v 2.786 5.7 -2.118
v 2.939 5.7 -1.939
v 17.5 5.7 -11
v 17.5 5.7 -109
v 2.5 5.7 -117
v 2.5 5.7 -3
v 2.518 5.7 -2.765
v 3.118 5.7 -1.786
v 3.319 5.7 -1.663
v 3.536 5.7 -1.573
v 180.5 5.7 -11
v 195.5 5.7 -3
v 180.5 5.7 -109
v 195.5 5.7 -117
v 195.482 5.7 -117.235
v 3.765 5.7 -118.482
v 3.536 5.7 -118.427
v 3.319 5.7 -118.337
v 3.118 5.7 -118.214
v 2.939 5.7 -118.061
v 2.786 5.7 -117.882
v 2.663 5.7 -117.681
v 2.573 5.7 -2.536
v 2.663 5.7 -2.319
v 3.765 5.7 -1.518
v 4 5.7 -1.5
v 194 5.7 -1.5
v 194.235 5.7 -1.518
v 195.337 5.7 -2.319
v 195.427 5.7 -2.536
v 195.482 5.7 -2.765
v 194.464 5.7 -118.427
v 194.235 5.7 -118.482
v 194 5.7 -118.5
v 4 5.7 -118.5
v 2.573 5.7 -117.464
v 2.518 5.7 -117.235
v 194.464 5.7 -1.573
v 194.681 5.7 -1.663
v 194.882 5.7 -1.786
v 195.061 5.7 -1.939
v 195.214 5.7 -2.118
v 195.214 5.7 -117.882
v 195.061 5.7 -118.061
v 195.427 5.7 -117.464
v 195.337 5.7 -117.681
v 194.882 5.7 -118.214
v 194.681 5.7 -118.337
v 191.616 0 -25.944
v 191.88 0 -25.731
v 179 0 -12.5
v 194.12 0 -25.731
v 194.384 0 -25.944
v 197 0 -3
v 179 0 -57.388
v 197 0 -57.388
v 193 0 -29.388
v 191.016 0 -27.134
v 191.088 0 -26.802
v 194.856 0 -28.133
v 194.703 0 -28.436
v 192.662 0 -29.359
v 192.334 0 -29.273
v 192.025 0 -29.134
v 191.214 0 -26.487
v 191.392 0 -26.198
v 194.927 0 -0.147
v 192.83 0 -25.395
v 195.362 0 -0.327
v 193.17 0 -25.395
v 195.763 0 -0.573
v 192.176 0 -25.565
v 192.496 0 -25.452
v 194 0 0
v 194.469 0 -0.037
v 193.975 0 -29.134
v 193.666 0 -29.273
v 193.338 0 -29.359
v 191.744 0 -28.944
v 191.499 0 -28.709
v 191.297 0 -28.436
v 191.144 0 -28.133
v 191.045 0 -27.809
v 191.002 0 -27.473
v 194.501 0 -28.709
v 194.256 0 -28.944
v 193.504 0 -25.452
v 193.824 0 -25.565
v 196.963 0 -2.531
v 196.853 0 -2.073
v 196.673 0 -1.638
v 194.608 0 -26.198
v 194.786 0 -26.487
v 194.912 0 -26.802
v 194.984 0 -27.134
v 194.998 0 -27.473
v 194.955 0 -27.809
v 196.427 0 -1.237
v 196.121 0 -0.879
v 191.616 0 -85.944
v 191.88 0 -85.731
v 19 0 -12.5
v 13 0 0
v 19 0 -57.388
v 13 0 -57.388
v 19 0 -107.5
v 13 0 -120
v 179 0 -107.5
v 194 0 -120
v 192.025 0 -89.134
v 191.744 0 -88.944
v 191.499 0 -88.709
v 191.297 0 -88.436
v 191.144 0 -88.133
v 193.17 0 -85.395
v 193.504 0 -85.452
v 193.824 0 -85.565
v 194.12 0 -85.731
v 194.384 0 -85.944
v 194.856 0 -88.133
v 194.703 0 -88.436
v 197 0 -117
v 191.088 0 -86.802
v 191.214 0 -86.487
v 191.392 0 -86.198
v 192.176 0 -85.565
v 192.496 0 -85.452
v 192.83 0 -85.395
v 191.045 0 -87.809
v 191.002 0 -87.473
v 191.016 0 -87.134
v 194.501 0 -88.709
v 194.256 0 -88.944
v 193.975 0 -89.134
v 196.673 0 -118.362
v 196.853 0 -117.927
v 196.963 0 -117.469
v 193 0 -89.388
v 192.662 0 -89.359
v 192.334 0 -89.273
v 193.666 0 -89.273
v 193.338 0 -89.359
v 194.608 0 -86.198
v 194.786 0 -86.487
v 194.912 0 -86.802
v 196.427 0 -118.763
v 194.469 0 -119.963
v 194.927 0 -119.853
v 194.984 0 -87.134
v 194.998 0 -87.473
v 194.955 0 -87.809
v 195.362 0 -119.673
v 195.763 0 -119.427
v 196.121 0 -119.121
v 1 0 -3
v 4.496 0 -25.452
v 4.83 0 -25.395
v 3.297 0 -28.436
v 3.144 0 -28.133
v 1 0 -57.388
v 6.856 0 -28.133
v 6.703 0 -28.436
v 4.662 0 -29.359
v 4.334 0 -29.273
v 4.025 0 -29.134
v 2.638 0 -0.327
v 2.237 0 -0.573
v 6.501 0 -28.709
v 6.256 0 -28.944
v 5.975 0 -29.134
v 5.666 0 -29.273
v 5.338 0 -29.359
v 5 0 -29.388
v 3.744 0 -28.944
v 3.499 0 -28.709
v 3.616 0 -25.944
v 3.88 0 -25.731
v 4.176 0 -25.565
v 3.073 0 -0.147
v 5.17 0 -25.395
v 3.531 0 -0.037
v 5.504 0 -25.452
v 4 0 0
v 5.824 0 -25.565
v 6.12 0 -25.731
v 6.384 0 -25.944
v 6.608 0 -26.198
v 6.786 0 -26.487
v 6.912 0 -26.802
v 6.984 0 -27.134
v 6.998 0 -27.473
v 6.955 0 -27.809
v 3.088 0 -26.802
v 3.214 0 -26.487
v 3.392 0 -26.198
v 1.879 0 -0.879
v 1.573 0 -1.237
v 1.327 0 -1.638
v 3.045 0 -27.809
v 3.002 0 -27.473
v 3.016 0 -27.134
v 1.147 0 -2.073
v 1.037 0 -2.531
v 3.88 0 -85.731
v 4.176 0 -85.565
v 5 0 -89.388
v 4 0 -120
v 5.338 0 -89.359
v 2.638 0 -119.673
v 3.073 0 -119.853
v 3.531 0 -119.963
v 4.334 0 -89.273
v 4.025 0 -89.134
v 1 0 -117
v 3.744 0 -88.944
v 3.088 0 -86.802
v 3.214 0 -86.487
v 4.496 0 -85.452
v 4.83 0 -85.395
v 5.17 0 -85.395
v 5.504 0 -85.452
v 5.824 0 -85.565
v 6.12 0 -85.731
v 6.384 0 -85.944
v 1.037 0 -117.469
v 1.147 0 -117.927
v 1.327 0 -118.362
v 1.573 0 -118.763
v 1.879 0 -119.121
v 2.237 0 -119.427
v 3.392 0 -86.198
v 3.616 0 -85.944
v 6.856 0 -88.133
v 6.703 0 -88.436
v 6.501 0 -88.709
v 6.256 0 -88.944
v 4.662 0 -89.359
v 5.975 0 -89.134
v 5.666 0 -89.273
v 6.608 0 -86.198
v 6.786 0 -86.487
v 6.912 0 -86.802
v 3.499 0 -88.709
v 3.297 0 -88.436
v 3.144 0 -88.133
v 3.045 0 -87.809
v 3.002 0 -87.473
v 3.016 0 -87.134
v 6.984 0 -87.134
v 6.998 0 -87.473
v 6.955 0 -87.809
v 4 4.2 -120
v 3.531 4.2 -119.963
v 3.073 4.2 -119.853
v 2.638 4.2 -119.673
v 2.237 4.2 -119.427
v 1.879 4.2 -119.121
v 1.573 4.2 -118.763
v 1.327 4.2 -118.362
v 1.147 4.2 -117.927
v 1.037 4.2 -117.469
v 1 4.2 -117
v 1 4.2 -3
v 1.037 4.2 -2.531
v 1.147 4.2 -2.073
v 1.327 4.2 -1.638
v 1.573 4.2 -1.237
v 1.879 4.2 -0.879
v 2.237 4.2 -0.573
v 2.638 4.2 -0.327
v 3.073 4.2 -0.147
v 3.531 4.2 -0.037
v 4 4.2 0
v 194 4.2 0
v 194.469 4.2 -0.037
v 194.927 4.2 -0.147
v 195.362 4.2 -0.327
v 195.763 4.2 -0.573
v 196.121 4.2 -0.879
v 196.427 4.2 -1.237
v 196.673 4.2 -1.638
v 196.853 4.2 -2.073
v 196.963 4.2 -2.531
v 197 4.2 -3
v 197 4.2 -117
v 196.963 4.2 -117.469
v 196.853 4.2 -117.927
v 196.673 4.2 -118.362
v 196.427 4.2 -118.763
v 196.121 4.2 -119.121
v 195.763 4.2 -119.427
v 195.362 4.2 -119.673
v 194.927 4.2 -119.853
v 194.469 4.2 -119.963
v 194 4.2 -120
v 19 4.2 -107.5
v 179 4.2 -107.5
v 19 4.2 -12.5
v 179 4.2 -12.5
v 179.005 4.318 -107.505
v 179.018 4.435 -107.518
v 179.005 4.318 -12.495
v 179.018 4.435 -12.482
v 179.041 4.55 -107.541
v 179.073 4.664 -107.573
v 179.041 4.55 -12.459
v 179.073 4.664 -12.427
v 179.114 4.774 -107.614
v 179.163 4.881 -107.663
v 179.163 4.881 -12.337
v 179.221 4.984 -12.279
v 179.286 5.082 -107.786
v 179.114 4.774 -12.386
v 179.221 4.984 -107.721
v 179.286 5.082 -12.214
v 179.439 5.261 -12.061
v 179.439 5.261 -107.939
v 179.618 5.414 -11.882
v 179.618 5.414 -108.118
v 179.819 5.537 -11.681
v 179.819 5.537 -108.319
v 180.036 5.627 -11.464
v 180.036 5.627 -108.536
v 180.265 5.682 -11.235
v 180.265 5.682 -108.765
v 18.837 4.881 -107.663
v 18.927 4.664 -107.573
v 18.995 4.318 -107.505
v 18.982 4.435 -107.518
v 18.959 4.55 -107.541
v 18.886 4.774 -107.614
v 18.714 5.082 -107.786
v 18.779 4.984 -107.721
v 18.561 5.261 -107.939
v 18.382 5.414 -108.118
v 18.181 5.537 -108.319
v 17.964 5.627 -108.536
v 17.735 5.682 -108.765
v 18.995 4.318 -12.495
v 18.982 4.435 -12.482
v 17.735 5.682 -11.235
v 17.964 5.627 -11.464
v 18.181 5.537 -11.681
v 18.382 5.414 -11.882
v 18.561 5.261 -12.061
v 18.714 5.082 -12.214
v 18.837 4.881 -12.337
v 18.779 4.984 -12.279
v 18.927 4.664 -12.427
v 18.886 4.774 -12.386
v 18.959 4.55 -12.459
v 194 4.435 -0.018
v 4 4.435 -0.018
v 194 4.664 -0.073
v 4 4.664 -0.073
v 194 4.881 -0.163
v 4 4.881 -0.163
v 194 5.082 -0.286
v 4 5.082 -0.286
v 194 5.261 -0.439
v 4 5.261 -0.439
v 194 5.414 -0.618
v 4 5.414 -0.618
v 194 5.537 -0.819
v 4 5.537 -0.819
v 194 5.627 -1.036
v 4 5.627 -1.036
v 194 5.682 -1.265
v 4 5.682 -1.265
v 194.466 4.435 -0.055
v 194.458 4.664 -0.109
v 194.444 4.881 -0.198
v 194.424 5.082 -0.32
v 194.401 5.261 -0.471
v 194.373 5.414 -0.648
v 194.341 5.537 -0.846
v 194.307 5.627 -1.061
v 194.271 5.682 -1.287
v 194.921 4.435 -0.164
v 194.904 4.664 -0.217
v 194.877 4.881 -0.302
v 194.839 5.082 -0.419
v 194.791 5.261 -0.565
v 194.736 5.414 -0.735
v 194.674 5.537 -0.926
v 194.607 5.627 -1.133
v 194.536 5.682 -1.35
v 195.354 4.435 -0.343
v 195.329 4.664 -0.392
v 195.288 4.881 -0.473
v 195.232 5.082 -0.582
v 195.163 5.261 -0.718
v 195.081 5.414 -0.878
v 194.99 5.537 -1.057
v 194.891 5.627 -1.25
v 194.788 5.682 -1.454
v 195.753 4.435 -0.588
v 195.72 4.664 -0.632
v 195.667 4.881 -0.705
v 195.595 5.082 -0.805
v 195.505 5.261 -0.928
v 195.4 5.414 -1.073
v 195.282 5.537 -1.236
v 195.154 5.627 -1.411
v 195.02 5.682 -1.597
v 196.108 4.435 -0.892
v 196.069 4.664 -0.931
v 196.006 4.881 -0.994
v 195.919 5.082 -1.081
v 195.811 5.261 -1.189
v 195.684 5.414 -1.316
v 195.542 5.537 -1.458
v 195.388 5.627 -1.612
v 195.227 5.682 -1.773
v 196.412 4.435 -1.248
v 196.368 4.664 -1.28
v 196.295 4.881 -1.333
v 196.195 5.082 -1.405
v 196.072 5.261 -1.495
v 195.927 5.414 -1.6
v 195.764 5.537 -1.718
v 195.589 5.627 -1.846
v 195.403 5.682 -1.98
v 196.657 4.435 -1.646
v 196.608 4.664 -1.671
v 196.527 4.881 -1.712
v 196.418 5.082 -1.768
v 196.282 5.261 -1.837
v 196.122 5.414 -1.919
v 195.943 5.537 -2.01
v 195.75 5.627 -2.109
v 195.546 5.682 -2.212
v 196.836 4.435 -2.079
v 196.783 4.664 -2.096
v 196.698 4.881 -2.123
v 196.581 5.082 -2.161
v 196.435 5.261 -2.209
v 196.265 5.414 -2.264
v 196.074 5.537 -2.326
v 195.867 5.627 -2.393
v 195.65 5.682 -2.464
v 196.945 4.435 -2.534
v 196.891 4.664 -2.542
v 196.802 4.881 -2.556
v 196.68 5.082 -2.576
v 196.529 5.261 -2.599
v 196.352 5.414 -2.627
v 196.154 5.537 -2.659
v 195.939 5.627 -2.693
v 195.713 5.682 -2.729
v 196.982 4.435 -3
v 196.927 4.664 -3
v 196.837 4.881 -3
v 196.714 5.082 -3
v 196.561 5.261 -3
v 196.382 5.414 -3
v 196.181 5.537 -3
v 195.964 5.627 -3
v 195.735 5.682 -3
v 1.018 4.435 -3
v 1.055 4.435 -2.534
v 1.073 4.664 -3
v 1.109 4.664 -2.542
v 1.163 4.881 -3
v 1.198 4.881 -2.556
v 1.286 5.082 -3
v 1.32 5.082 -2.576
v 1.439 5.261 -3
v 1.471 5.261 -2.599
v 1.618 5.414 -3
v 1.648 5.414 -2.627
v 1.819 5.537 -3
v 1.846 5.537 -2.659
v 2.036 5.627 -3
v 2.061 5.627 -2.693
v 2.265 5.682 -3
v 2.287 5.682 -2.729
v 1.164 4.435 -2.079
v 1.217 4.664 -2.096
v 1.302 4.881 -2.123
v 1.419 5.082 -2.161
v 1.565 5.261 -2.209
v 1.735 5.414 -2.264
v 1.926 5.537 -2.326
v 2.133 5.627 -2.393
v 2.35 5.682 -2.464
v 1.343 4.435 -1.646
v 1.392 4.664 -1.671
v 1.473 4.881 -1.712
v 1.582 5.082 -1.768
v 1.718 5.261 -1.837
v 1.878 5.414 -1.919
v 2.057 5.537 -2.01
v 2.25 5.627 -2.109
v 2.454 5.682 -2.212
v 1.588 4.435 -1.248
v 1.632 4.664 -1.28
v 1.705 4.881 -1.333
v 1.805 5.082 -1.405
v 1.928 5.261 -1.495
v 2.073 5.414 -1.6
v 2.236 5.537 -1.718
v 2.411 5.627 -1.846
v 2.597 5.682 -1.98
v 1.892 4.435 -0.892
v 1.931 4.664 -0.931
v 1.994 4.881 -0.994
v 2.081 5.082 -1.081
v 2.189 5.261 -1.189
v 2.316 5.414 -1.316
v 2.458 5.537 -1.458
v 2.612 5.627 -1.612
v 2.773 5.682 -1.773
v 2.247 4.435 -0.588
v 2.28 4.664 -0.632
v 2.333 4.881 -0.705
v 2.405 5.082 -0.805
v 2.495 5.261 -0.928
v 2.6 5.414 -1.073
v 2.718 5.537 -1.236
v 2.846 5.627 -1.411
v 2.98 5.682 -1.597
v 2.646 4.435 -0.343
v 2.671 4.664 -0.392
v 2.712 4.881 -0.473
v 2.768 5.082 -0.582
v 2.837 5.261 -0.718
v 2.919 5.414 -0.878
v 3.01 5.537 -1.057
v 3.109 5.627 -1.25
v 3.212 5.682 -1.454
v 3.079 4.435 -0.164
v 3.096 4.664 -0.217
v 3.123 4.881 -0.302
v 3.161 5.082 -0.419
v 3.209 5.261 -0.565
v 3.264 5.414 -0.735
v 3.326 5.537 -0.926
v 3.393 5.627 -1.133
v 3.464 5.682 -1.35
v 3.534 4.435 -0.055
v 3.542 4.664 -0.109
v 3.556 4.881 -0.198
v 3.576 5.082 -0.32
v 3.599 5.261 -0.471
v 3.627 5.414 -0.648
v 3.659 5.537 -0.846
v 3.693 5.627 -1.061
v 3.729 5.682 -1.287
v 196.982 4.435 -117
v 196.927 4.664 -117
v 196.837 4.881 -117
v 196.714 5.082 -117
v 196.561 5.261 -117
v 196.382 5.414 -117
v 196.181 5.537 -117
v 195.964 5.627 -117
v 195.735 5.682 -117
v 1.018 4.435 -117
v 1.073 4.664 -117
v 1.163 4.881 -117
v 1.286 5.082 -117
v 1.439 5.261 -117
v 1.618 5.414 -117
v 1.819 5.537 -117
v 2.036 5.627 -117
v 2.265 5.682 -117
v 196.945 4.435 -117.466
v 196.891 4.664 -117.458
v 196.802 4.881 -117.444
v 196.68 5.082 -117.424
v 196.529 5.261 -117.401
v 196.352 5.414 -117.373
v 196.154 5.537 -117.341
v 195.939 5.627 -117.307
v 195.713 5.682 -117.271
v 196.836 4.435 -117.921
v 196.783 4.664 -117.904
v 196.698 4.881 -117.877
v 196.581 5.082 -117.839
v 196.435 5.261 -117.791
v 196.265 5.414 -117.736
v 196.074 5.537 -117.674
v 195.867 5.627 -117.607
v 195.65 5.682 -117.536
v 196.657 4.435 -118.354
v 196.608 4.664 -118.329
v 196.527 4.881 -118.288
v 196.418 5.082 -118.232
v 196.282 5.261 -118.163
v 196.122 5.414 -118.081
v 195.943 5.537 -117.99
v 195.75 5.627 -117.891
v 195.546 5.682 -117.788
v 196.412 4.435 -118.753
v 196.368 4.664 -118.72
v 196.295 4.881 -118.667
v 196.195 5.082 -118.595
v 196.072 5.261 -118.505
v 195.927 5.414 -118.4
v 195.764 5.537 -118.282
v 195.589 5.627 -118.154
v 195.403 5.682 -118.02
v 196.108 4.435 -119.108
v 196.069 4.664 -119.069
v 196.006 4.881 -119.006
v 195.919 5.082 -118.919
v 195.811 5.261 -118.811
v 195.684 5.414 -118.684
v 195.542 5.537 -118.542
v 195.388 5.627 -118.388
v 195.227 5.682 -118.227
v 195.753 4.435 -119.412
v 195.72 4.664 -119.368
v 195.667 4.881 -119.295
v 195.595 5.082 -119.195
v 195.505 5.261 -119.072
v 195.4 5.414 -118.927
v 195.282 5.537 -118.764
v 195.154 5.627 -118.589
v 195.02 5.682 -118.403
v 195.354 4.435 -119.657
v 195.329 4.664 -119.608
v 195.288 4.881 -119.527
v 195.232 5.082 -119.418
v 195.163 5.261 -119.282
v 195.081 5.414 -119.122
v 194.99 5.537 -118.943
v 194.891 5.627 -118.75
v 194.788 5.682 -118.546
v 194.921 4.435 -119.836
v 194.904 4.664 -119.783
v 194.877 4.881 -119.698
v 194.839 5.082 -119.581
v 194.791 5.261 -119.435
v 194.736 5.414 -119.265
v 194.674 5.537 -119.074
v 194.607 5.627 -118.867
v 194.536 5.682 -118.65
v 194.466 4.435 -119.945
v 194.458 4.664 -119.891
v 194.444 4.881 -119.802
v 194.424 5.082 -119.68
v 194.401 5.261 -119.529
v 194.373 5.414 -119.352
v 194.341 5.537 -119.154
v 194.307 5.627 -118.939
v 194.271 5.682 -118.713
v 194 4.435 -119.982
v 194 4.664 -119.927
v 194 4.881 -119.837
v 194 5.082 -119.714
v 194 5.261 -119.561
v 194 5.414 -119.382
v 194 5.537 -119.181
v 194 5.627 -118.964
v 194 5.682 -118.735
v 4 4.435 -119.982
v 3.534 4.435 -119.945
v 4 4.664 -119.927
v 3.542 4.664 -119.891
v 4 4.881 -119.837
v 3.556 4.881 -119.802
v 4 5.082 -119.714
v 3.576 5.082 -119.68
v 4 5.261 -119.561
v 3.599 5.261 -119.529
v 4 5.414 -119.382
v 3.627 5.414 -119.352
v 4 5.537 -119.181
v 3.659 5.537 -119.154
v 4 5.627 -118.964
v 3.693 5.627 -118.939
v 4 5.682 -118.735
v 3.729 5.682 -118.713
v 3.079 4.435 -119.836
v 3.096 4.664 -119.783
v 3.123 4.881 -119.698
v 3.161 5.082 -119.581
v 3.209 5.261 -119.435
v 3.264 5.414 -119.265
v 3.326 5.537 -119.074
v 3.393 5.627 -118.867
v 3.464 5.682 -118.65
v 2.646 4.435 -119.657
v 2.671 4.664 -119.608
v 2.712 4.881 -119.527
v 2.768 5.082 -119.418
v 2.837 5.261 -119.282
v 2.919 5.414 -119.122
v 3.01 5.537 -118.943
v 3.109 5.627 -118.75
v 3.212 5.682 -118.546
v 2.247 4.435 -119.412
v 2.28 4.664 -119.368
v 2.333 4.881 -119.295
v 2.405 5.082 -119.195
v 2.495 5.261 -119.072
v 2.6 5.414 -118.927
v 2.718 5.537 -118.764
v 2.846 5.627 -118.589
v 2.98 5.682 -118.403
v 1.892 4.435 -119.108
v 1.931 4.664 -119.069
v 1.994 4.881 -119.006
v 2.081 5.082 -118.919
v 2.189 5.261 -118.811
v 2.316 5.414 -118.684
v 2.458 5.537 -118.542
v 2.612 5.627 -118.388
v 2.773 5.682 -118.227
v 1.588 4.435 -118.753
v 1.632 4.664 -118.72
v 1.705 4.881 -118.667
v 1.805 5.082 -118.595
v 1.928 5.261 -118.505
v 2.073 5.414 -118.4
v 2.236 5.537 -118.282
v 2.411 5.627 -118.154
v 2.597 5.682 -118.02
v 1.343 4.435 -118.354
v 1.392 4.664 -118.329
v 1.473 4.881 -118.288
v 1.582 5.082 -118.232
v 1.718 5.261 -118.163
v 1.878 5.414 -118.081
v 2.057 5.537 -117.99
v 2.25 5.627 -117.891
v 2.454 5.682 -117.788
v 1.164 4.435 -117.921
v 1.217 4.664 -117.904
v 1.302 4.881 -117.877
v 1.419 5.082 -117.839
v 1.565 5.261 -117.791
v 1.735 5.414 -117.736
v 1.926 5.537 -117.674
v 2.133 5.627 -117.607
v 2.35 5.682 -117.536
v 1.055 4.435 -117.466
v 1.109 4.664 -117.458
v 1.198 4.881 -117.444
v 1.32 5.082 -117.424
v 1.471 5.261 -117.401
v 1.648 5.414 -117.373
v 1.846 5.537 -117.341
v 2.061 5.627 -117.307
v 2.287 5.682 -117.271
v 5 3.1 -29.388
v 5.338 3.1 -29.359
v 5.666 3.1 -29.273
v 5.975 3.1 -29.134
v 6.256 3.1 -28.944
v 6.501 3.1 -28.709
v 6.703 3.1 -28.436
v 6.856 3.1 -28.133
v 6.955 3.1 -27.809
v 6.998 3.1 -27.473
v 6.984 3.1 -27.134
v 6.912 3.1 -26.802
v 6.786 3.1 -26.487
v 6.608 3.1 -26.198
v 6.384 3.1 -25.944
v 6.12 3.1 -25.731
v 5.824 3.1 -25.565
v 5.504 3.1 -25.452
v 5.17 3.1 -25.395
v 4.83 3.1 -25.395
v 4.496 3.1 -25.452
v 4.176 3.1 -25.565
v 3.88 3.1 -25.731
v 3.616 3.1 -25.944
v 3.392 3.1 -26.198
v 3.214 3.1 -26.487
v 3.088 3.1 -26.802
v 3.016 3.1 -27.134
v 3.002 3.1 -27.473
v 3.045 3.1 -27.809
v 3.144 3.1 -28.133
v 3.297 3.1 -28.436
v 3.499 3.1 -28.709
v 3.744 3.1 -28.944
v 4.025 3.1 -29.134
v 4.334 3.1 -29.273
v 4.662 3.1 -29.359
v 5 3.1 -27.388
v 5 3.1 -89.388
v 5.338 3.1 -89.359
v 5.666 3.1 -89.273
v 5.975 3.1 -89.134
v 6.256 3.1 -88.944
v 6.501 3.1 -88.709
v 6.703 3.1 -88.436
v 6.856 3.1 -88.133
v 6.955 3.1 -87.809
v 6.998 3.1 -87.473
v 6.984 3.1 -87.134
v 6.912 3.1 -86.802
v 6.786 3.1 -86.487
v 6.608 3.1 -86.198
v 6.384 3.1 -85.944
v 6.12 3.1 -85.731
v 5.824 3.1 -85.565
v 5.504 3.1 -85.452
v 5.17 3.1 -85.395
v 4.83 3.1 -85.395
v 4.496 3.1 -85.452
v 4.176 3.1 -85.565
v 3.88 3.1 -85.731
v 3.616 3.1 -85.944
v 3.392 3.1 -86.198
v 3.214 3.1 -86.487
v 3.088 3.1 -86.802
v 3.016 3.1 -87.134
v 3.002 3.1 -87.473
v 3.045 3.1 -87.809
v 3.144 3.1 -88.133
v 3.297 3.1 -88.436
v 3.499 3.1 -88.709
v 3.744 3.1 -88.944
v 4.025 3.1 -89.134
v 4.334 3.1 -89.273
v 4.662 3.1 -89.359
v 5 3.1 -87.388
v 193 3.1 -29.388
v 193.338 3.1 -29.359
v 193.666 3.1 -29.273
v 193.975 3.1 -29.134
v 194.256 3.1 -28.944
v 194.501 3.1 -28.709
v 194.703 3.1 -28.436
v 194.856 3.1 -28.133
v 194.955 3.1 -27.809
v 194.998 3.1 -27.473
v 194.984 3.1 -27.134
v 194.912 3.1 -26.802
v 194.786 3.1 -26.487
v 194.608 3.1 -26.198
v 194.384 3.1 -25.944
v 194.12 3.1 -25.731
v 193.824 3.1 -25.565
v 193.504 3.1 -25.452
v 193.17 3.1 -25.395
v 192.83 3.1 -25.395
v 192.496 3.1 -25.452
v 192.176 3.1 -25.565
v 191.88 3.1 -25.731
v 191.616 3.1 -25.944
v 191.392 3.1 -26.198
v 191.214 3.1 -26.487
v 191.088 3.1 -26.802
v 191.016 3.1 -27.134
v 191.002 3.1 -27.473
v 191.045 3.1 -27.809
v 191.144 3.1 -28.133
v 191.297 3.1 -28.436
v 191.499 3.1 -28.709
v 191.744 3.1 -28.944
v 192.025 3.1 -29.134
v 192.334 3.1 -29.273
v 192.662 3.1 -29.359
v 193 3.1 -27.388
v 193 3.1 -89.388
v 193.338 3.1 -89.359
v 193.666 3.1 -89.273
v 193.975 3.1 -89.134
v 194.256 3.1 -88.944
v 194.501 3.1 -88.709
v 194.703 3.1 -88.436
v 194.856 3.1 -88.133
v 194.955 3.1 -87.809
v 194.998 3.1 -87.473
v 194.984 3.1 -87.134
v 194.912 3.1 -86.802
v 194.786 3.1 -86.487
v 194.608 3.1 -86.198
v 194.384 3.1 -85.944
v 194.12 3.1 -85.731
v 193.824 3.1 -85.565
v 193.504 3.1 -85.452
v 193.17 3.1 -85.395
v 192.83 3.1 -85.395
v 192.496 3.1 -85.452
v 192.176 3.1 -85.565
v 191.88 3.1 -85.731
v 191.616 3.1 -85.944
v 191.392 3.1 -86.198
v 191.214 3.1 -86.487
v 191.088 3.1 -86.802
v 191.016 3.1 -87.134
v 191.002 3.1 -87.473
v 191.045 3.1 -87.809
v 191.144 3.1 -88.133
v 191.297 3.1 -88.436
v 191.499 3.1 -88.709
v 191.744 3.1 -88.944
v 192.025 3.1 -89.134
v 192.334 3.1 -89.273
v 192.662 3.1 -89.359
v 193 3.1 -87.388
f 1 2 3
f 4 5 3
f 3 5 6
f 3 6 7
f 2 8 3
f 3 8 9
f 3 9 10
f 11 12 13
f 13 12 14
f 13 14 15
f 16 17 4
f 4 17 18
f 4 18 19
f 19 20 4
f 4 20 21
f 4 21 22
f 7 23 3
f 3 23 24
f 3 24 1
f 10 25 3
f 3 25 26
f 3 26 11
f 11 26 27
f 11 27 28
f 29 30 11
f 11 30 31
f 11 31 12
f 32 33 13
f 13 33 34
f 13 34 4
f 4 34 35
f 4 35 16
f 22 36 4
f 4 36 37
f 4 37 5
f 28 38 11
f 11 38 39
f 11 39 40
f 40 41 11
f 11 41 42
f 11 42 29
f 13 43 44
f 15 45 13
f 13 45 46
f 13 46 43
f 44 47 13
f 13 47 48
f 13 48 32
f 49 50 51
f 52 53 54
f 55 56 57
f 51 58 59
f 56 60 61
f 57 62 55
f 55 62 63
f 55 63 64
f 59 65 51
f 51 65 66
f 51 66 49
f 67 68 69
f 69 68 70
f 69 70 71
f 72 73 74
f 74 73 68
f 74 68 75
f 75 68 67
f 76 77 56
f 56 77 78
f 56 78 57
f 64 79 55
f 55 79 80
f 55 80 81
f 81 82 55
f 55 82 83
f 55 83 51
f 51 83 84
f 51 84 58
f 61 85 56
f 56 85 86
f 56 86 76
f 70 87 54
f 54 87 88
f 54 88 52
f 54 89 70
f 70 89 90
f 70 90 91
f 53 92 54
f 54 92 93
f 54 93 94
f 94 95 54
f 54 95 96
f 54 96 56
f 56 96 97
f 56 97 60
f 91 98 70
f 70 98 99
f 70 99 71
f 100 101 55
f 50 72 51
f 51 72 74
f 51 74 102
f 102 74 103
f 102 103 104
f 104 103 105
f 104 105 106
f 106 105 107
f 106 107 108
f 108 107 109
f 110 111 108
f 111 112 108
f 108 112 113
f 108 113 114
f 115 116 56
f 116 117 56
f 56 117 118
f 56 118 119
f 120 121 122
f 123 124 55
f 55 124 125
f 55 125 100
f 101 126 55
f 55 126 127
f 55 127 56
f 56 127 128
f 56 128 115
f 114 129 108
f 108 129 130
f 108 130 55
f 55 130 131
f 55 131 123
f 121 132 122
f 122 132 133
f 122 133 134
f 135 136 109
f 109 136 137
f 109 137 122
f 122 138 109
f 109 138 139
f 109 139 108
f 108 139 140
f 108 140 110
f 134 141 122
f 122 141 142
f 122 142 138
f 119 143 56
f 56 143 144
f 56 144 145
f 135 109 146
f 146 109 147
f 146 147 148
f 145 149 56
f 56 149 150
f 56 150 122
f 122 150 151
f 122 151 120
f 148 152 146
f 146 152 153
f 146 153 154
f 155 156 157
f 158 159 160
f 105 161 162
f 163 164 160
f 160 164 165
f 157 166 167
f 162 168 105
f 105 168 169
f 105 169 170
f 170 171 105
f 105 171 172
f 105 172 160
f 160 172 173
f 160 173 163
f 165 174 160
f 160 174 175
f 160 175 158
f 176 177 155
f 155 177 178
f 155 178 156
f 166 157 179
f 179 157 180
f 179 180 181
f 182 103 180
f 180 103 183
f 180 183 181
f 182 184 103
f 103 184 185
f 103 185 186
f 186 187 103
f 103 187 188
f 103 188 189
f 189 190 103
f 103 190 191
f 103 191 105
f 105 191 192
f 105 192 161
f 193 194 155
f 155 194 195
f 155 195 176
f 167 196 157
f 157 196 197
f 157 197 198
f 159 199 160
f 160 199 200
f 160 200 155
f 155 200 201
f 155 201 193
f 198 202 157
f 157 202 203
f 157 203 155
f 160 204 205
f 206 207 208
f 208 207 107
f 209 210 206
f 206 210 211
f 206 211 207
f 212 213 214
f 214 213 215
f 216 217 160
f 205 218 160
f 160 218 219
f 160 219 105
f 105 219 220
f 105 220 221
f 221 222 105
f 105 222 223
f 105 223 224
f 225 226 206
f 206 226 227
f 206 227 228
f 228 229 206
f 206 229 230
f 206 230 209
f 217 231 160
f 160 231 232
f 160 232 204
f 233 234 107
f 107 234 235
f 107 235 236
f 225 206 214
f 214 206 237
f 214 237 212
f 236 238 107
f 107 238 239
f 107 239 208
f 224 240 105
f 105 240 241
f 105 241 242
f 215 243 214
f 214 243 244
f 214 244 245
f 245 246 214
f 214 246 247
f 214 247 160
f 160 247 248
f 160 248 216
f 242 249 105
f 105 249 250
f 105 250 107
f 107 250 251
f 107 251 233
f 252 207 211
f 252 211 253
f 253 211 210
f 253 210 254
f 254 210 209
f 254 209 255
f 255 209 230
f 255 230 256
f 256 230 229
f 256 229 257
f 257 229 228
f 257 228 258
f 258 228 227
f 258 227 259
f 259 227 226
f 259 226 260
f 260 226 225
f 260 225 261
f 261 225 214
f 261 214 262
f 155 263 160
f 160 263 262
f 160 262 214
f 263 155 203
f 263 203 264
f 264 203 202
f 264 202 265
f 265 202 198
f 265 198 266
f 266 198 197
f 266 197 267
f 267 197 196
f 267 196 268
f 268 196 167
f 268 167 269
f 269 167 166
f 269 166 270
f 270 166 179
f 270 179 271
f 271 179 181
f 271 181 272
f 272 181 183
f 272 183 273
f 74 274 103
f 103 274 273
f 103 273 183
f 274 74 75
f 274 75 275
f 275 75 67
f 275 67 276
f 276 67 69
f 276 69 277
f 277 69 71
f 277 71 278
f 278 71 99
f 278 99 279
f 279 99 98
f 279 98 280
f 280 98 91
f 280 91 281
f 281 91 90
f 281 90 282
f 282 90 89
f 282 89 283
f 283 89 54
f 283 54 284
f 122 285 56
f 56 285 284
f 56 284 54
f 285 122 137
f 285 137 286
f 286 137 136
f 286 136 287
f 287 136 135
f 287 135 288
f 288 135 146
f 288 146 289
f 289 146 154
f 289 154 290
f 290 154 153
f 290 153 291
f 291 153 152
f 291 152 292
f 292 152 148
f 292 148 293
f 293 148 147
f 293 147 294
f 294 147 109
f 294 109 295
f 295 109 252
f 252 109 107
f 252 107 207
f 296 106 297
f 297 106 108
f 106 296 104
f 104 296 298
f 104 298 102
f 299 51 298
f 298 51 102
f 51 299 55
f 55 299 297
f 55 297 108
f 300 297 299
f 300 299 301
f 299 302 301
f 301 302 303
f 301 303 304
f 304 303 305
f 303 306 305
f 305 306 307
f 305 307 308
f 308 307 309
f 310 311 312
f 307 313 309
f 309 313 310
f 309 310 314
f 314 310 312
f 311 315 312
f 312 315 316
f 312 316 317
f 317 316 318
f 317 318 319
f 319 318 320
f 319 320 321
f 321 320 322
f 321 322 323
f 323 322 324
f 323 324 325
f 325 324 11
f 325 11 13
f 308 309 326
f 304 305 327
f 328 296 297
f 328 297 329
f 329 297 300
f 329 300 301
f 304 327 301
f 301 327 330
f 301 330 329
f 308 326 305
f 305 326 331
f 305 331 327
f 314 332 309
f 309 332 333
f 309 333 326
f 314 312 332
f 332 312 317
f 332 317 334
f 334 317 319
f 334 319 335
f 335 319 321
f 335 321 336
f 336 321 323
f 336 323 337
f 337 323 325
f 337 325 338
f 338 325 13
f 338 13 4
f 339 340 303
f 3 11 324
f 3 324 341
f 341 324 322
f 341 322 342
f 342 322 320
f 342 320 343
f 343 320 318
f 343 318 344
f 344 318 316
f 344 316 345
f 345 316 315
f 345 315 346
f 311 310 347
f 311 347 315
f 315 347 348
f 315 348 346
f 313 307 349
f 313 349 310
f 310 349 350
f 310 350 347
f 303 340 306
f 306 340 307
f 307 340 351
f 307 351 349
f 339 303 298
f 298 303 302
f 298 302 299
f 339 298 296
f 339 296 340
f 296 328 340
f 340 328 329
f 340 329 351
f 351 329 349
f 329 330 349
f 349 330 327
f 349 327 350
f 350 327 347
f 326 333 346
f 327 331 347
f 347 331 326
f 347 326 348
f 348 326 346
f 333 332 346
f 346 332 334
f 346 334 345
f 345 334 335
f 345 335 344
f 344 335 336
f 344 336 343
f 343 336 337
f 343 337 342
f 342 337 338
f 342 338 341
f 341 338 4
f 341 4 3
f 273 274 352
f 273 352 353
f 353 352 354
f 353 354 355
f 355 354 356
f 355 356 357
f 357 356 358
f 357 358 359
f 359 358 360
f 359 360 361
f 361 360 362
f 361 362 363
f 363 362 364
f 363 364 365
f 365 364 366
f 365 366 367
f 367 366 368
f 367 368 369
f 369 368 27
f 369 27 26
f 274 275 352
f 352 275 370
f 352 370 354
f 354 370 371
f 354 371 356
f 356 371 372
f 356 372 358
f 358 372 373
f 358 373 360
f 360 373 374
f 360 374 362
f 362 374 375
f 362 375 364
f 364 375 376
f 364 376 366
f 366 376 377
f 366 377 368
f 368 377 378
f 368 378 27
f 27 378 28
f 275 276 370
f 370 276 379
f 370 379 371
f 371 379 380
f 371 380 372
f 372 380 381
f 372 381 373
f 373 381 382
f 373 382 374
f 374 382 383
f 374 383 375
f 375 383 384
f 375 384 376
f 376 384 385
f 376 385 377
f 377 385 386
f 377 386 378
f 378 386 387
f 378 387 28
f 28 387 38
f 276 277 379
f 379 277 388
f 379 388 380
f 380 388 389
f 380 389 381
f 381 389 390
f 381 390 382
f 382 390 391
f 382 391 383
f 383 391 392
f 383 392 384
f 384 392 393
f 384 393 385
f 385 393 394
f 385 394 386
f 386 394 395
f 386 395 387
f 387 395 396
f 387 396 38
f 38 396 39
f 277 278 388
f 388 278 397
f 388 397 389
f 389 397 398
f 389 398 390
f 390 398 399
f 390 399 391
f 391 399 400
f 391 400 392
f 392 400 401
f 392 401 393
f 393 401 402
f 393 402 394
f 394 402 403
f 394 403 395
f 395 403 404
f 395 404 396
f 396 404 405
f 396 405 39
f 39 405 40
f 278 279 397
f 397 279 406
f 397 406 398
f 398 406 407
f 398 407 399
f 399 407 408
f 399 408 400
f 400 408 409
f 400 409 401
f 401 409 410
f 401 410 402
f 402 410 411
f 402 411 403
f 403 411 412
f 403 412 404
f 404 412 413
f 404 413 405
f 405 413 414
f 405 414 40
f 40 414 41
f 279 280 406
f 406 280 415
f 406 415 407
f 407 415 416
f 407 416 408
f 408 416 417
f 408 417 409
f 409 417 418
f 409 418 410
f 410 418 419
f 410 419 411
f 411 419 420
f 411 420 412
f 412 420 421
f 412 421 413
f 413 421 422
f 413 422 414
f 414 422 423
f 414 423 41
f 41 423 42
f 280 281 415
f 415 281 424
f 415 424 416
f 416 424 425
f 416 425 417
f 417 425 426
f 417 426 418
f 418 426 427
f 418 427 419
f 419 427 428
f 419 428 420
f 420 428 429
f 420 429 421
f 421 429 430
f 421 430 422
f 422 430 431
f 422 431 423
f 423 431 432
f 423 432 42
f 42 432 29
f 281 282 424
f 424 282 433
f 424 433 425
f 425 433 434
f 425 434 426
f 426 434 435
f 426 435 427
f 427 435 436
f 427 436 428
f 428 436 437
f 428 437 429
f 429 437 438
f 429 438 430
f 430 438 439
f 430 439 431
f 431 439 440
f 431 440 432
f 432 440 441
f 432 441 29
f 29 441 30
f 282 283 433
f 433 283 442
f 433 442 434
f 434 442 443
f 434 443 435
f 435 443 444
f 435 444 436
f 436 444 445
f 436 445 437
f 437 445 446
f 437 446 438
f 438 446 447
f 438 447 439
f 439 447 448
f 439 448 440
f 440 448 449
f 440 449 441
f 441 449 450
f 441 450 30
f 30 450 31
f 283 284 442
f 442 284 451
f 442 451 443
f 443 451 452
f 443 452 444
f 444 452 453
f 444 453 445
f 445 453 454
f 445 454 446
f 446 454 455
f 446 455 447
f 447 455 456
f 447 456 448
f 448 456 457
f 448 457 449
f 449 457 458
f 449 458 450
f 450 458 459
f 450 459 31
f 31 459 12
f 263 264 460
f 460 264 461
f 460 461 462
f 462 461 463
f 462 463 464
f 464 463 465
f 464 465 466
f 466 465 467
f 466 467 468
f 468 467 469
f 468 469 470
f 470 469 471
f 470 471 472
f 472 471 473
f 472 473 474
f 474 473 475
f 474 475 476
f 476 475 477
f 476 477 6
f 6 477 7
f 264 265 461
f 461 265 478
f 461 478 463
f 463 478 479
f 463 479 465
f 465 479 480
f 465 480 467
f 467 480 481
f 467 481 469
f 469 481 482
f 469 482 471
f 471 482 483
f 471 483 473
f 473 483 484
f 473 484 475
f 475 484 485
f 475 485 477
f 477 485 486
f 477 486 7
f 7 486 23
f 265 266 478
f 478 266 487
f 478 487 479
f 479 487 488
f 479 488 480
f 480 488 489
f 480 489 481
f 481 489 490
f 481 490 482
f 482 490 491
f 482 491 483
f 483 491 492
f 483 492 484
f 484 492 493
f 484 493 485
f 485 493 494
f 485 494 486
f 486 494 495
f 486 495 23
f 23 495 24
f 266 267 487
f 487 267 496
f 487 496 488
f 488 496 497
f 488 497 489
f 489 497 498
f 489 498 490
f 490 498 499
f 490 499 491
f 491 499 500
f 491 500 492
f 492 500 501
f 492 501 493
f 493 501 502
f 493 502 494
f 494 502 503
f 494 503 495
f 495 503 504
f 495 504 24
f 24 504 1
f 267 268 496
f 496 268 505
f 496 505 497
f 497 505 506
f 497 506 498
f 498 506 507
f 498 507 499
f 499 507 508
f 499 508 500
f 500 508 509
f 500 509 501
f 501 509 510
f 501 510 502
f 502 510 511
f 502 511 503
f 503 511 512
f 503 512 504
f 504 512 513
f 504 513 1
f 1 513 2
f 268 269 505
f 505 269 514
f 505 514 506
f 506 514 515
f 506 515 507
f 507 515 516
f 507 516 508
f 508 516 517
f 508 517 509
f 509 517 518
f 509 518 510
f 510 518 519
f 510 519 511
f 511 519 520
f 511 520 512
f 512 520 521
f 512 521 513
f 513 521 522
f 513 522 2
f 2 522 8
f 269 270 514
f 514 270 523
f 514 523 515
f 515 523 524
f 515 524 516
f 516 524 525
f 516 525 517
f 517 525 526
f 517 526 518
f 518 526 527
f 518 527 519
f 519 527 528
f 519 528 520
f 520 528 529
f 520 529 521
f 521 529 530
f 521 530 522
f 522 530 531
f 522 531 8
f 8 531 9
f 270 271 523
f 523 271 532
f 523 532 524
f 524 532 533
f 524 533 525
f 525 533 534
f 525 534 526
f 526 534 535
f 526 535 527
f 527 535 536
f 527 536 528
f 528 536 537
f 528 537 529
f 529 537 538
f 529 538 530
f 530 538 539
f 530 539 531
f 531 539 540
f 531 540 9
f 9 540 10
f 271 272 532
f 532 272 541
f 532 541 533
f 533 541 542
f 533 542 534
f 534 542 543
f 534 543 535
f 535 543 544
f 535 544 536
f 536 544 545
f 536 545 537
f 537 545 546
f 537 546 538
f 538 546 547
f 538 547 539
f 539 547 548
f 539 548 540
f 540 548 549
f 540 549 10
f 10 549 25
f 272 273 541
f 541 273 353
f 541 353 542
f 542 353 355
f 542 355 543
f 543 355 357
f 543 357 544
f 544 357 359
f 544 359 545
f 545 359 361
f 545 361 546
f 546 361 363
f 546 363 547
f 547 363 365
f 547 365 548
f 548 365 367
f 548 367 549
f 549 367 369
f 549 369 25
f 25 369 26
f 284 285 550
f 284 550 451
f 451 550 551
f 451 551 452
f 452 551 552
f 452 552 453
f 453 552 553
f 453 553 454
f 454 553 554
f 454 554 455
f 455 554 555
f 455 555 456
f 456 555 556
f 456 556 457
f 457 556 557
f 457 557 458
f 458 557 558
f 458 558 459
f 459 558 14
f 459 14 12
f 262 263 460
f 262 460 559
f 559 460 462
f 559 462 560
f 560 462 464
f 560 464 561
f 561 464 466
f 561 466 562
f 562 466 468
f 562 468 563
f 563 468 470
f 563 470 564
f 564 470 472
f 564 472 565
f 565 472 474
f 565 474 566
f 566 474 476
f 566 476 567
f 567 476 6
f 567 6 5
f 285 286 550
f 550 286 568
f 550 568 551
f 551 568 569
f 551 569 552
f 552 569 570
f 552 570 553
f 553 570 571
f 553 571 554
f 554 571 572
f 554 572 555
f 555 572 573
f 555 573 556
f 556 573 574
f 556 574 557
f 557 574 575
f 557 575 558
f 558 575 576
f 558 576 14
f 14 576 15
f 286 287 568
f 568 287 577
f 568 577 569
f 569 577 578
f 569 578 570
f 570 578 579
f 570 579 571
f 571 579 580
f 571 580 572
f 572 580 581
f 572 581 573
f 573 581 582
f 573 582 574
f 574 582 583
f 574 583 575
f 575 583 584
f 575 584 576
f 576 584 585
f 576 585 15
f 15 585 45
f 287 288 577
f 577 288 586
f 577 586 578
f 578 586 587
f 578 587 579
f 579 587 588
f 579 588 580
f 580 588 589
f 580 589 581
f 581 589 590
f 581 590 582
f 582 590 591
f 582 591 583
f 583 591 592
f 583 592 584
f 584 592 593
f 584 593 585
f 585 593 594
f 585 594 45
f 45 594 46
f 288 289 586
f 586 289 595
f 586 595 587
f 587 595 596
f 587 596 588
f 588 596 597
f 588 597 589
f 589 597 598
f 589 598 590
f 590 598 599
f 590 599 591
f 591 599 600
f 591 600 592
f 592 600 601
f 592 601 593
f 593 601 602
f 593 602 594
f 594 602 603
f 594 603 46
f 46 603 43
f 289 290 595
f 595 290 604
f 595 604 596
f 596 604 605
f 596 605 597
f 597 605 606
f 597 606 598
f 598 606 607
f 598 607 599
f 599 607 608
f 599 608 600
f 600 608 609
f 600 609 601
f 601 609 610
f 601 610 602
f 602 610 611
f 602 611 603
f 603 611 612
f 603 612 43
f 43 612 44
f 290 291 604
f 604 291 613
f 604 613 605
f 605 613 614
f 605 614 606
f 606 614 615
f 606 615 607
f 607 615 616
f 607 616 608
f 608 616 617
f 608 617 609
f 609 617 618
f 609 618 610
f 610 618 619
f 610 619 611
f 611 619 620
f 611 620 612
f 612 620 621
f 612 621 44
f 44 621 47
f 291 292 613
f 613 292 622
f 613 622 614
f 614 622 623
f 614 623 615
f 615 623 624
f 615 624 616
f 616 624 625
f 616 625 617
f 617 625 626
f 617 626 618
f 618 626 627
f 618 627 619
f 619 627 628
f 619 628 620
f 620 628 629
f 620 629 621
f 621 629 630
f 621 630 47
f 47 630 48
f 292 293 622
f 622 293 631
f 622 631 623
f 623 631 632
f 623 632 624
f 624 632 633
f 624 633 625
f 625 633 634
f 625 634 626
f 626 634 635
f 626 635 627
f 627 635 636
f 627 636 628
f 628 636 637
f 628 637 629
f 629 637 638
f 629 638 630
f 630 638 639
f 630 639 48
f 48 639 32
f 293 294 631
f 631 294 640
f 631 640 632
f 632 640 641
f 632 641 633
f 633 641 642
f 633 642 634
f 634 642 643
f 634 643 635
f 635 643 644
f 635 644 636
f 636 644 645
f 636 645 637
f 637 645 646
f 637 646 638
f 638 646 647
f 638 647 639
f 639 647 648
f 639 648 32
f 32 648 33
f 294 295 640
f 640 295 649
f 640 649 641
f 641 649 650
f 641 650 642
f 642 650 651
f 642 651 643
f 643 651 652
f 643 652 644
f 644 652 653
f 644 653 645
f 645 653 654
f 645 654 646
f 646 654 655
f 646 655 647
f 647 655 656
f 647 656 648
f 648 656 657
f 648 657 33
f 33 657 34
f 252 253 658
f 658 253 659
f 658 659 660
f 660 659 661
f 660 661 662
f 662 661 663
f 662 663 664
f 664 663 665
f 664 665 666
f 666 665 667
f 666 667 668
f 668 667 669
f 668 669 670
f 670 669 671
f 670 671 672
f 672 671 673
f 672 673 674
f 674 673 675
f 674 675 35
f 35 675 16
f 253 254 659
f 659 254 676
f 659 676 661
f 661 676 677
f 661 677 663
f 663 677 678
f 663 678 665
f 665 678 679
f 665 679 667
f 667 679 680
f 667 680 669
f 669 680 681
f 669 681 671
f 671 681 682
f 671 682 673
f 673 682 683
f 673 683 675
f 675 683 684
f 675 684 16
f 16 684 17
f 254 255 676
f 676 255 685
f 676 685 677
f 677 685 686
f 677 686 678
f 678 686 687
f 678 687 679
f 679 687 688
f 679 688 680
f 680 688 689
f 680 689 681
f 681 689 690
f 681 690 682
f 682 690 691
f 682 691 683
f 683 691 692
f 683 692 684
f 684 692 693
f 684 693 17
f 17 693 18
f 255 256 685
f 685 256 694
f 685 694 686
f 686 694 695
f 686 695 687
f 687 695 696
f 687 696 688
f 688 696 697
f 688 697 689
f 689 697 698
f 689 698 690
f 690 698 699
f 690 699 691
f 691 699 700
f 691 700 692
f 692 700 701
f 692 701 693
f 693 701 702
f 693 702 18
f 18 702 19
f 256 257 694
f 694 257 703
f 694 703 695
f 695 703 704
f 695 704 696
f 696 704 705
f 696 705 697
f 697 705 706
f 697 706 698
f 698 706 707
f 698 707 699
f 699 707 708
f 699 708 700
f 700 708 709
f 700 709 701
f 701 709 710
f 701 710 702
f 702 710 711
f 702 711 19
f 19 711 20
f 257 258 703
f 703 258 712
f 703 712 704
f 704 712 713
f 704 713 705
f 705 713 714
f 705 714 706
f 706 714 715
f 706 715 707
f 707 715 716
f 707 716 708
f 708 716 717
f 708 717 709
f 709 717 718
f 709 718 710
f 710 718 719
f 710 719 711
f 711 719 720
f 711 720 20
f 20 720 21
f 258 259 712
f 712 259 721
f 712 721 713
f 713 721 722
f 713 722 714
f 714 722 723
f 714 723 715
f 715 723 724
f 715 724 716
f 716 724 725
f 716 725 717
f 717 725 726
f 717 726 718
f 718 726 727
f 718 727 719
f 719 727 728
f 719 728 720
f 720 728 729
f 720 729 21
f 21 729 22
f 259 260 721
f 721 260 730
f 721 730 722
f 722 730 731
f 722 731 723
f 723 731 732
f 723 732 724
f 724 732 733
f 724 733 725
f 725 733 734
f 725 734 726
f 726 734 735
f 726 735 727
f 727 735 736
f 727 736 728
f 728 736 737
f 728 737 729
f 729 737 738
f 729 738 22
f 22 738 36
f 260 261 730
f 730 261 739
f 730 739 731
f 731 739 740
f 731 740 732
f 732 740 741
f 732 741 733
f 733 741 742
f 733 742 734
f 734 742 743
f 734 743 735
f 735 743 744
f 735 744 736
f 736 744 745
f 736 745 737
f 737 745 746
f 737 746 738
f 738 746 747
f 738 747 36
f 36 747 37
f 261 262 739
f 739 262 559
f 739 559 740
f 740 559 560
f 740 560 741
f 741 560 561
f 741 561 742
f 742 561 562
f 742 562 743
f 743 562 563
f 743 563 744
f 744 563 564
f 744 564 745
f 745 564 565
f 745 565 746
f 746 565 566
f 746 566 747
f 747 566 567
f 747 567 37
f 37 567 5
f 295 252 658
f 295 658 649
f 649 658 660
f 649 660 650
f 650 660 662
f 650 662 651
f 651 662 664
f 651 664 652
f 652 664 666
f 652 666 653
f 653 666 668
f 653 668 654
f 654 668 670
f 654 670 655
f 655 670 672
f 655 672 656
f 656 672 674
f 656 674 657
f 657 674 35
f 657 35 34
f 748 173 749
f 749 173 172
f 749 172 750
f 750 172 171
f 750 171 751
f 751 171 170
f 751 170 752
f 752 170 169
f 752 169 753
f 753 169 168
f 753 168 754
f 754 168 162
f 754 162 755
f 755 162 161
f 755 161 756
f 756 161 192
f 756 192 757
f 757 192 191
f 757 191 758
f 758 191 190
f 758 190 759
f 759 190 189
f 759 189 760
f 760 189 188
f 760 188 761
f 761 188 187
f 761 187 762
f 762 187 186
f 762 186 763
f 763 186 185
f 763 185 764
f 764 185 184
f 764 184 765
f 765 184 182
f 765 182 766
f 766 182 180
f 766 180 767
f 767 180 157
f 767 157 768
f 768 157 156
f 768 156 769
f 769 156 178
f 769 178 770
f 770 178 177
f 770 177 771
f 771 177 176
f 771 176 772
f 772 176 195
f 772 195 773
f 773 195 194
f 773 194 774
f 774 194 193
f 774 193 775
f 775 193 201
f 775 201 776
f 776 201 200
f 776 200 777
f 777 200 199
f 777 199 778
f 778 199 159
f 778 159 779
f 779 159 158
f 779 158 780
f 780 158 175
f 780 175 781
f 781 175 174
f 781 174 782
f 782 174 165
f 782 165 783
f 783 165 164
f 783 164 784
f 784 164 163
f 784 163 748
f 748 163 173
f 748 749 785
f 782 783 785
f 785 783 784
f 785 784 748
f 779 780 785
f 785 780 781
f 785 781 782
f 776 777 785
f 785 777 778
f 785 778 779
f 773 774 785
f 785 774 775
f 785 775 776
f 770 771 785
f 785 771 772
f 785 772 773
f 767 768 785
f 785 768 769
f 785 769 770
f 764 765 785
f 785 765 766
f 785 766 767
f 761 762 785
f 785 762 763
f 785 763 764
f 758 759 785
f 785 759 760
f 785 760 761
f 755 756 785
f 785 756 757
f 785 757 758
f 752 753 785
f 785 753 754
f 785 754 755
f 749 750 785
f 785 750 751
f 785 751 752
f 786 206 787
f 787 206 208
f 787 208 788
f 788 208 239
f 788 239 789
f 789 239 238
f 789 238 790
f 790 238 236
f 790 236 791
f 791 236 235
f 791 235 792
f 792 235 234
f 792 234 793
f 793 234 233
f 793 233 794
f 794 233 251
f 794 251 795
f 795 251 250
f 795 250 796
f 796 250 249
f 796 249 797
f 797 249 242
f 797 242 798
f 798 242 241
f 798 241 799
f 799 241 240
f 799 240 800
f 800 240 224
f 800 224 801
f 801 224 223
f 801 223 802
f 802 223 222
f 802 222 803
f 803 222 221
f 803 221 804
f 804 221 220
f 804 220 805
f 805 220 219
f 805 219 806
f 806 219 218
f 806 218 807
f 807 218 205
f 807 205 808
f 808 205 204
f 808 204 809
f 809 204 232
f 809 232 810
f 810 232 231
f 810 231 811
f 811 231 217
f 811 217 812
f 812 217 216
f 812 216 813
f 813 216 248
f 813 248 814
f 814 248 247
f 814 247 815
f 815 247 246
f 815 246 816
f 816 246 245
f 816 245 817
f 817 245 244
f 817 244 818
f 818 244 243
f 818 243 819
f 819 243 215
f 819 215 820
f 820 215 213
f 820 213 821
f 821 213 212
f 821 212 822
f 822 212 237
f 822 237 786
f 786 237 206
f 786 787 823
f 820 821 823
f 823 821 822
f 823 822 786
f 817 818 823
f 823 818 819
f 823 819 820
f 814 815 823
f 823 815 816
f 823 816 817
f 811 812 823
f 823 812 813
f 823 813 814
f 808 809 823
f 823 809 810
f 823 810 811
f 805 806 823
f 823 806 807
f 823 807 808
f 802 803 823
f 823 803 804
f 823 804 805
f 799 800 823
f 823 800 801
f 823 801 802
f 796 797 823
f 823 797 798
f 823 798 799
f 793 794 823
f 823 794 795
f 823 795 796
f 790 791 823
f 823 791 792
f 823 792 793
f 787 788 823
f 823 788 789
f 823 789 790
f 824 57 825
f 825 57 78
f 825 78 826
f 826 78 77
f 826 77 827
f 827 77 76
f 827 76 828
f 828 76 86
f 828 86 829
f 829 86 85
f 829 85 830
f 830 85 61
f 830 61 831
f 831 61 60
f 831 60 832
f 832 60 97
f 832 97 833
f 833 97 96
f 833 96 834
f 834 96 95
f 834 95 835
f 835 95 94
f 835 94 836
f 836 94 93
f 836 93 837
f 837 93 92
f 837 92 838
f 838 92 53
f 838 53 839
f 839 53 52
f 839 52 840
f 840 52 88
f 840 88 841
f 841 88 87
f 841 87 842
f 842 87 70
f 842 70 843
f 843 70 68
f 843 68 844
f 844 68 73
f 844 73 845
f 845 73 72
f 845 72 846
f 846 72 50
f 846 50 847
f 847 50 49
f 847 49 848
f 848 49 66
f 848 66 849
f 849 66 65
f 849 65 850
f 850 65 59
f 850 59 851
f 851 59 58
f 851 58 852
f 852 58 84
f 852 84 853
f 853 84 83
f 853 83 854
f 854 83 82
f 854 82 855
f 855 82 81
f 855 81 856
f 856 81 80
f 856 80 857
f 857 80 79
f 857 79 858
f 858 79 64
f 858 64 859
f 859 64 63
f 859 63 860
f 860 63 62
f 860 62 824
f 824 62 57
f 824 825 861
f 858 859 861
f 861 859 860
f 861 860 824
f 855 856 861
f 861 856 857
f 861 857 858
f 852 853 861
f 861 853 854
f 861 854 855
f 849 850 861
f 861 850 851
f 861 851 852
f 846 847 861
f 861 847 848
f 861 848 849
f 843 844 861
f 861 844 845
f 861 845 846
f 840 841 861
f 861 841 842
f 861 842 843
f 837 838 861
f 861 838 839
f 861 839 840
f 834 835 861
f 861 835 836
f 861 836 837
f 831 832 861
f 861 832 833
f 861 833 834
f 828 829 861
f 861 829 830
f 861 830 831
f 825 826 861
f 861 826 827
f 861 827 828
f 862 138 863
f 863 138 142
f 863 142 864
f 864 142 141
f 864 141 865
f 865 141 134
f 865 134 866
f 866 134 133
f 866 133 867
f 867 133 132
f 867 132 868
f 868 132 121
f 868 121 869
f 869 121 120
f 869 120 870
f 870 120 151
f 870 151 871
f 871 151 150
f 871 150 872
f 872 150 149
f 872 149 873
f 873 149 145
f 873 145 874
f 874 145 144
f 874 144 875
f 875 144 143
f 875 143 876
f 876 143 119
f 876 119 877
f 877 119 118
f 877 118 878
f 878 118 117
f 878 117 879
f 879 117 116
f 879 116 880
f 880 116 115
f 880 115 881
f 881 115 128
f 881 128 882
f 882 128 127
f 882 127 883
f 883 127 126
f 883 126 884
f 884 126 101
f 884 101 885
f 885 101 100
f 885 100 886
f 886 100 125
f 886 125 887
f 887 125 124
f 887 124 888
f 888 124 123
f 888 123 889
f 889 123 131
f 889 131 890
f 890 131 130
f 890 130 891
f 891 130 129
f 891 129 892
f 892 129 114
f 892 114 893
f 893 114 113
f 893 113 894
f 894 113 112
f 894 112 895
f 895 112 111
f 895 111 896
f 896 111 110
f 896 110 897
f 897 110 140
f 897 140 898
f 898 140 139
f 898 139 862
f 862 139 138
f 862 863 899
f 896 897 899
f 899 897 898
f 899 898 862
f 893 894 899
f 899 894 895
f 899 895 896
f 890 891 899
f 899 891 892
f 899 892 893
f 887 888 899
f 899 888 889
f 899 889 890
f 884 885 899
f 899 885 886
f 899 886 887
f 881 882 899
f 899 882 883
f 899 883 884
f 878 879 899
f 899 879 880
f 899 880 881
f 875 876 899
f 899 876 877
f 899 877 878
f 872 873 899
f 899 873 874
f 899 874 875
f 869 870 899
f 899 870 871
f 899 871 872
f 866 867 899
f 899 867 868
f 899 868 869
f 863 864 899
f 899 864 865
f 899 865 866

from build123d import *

# Parameters (mm, degrees)
CROQUIS1_W              = 160
CROQUIS1_H              = 95
SALIENTE_EXTRUIR3_DEPTH = 5.7
REDONDEO2_R             = 1.5
CROQUIS2_R              = 2
CORTAR_EXTRUIR1_DEPTH   = 3.1


with BuildPart() as part:
    # Croquis1 → Saliente-Extruir3 (new body)
    with BuildSketch(Plane(origin=(0, 0, 0), x_dir=(1, 0, 0), z_dir=(0, 1, 0))):
        with BuildLine():
            Line((4, 120), (194, 120))
            ThreePointArc((194, 120), (196.121320344, 119.121320344), (197, 117))
            Line((197, 117), (197, 3))
            ThreePointArc((197, 3), (196.121320344, 0.878679656), (194, 0))
            Line((194, 0), (4, 0))
            ThreePointArc((4, 0), (1.878679656, 0.878679656), (1, 3))
            Line((1, 3), (1, 117))
            ThreePointArc((1, 117), (1.878679656, 119.121320344), (4, 120))
        make_face()
        with Locations((99, 60)):
            Rectangle(CROQUIS1_W, CROQUIS1_H, mode=Mode.SUBTRACT)
    extrude(amount=SALIENTE_EXTRUIR3_DEPTH)

    # Redondeo2
    redondeo2_edges = [part.edges().sort_by_distance(p)[0] for p in [
        (1.878679656, 5.7, -0.878679656),
        (99, 5.7, 0),
        (196.121320344, 5.7, -0.878679656),
        (197, 5.7, -60),
        (196.121320344, 5.7, -119.121320344),
        (99, 5.7, -120),
        (99, 5.7, -107.5),
        (19, 5.7, -60),
        (99, 5.7, -12.5),
        (179, 5.7, -60),
        (1.878679656, 5.7, -119.121320344),
        (1, 5.7, -60),
    ]]
    fillet(redondeo2_edges, radius=REDONDEO2_R)

    # Croquis2 → Cortar-Extruir1 (cut)
    with BuildSketch(Plane.XZ):
        with Locations((5, -27.38768366)):
            Circle(CROQUIS2_R)
        with Locations((5, -87.38768366)):
            Circle(CROQUIS2_R)
        with Locations((193, -27.38768366)):
            Circle(CROQUIS2_R)
        with Locations((193, -87.38768366)):
            Circle(CROQUIS2_R)
    extrude(amount=-CORTAR_EXTRUIR1_DEPTH, mode=Mode.SUBTRACT)


solid = part.part
